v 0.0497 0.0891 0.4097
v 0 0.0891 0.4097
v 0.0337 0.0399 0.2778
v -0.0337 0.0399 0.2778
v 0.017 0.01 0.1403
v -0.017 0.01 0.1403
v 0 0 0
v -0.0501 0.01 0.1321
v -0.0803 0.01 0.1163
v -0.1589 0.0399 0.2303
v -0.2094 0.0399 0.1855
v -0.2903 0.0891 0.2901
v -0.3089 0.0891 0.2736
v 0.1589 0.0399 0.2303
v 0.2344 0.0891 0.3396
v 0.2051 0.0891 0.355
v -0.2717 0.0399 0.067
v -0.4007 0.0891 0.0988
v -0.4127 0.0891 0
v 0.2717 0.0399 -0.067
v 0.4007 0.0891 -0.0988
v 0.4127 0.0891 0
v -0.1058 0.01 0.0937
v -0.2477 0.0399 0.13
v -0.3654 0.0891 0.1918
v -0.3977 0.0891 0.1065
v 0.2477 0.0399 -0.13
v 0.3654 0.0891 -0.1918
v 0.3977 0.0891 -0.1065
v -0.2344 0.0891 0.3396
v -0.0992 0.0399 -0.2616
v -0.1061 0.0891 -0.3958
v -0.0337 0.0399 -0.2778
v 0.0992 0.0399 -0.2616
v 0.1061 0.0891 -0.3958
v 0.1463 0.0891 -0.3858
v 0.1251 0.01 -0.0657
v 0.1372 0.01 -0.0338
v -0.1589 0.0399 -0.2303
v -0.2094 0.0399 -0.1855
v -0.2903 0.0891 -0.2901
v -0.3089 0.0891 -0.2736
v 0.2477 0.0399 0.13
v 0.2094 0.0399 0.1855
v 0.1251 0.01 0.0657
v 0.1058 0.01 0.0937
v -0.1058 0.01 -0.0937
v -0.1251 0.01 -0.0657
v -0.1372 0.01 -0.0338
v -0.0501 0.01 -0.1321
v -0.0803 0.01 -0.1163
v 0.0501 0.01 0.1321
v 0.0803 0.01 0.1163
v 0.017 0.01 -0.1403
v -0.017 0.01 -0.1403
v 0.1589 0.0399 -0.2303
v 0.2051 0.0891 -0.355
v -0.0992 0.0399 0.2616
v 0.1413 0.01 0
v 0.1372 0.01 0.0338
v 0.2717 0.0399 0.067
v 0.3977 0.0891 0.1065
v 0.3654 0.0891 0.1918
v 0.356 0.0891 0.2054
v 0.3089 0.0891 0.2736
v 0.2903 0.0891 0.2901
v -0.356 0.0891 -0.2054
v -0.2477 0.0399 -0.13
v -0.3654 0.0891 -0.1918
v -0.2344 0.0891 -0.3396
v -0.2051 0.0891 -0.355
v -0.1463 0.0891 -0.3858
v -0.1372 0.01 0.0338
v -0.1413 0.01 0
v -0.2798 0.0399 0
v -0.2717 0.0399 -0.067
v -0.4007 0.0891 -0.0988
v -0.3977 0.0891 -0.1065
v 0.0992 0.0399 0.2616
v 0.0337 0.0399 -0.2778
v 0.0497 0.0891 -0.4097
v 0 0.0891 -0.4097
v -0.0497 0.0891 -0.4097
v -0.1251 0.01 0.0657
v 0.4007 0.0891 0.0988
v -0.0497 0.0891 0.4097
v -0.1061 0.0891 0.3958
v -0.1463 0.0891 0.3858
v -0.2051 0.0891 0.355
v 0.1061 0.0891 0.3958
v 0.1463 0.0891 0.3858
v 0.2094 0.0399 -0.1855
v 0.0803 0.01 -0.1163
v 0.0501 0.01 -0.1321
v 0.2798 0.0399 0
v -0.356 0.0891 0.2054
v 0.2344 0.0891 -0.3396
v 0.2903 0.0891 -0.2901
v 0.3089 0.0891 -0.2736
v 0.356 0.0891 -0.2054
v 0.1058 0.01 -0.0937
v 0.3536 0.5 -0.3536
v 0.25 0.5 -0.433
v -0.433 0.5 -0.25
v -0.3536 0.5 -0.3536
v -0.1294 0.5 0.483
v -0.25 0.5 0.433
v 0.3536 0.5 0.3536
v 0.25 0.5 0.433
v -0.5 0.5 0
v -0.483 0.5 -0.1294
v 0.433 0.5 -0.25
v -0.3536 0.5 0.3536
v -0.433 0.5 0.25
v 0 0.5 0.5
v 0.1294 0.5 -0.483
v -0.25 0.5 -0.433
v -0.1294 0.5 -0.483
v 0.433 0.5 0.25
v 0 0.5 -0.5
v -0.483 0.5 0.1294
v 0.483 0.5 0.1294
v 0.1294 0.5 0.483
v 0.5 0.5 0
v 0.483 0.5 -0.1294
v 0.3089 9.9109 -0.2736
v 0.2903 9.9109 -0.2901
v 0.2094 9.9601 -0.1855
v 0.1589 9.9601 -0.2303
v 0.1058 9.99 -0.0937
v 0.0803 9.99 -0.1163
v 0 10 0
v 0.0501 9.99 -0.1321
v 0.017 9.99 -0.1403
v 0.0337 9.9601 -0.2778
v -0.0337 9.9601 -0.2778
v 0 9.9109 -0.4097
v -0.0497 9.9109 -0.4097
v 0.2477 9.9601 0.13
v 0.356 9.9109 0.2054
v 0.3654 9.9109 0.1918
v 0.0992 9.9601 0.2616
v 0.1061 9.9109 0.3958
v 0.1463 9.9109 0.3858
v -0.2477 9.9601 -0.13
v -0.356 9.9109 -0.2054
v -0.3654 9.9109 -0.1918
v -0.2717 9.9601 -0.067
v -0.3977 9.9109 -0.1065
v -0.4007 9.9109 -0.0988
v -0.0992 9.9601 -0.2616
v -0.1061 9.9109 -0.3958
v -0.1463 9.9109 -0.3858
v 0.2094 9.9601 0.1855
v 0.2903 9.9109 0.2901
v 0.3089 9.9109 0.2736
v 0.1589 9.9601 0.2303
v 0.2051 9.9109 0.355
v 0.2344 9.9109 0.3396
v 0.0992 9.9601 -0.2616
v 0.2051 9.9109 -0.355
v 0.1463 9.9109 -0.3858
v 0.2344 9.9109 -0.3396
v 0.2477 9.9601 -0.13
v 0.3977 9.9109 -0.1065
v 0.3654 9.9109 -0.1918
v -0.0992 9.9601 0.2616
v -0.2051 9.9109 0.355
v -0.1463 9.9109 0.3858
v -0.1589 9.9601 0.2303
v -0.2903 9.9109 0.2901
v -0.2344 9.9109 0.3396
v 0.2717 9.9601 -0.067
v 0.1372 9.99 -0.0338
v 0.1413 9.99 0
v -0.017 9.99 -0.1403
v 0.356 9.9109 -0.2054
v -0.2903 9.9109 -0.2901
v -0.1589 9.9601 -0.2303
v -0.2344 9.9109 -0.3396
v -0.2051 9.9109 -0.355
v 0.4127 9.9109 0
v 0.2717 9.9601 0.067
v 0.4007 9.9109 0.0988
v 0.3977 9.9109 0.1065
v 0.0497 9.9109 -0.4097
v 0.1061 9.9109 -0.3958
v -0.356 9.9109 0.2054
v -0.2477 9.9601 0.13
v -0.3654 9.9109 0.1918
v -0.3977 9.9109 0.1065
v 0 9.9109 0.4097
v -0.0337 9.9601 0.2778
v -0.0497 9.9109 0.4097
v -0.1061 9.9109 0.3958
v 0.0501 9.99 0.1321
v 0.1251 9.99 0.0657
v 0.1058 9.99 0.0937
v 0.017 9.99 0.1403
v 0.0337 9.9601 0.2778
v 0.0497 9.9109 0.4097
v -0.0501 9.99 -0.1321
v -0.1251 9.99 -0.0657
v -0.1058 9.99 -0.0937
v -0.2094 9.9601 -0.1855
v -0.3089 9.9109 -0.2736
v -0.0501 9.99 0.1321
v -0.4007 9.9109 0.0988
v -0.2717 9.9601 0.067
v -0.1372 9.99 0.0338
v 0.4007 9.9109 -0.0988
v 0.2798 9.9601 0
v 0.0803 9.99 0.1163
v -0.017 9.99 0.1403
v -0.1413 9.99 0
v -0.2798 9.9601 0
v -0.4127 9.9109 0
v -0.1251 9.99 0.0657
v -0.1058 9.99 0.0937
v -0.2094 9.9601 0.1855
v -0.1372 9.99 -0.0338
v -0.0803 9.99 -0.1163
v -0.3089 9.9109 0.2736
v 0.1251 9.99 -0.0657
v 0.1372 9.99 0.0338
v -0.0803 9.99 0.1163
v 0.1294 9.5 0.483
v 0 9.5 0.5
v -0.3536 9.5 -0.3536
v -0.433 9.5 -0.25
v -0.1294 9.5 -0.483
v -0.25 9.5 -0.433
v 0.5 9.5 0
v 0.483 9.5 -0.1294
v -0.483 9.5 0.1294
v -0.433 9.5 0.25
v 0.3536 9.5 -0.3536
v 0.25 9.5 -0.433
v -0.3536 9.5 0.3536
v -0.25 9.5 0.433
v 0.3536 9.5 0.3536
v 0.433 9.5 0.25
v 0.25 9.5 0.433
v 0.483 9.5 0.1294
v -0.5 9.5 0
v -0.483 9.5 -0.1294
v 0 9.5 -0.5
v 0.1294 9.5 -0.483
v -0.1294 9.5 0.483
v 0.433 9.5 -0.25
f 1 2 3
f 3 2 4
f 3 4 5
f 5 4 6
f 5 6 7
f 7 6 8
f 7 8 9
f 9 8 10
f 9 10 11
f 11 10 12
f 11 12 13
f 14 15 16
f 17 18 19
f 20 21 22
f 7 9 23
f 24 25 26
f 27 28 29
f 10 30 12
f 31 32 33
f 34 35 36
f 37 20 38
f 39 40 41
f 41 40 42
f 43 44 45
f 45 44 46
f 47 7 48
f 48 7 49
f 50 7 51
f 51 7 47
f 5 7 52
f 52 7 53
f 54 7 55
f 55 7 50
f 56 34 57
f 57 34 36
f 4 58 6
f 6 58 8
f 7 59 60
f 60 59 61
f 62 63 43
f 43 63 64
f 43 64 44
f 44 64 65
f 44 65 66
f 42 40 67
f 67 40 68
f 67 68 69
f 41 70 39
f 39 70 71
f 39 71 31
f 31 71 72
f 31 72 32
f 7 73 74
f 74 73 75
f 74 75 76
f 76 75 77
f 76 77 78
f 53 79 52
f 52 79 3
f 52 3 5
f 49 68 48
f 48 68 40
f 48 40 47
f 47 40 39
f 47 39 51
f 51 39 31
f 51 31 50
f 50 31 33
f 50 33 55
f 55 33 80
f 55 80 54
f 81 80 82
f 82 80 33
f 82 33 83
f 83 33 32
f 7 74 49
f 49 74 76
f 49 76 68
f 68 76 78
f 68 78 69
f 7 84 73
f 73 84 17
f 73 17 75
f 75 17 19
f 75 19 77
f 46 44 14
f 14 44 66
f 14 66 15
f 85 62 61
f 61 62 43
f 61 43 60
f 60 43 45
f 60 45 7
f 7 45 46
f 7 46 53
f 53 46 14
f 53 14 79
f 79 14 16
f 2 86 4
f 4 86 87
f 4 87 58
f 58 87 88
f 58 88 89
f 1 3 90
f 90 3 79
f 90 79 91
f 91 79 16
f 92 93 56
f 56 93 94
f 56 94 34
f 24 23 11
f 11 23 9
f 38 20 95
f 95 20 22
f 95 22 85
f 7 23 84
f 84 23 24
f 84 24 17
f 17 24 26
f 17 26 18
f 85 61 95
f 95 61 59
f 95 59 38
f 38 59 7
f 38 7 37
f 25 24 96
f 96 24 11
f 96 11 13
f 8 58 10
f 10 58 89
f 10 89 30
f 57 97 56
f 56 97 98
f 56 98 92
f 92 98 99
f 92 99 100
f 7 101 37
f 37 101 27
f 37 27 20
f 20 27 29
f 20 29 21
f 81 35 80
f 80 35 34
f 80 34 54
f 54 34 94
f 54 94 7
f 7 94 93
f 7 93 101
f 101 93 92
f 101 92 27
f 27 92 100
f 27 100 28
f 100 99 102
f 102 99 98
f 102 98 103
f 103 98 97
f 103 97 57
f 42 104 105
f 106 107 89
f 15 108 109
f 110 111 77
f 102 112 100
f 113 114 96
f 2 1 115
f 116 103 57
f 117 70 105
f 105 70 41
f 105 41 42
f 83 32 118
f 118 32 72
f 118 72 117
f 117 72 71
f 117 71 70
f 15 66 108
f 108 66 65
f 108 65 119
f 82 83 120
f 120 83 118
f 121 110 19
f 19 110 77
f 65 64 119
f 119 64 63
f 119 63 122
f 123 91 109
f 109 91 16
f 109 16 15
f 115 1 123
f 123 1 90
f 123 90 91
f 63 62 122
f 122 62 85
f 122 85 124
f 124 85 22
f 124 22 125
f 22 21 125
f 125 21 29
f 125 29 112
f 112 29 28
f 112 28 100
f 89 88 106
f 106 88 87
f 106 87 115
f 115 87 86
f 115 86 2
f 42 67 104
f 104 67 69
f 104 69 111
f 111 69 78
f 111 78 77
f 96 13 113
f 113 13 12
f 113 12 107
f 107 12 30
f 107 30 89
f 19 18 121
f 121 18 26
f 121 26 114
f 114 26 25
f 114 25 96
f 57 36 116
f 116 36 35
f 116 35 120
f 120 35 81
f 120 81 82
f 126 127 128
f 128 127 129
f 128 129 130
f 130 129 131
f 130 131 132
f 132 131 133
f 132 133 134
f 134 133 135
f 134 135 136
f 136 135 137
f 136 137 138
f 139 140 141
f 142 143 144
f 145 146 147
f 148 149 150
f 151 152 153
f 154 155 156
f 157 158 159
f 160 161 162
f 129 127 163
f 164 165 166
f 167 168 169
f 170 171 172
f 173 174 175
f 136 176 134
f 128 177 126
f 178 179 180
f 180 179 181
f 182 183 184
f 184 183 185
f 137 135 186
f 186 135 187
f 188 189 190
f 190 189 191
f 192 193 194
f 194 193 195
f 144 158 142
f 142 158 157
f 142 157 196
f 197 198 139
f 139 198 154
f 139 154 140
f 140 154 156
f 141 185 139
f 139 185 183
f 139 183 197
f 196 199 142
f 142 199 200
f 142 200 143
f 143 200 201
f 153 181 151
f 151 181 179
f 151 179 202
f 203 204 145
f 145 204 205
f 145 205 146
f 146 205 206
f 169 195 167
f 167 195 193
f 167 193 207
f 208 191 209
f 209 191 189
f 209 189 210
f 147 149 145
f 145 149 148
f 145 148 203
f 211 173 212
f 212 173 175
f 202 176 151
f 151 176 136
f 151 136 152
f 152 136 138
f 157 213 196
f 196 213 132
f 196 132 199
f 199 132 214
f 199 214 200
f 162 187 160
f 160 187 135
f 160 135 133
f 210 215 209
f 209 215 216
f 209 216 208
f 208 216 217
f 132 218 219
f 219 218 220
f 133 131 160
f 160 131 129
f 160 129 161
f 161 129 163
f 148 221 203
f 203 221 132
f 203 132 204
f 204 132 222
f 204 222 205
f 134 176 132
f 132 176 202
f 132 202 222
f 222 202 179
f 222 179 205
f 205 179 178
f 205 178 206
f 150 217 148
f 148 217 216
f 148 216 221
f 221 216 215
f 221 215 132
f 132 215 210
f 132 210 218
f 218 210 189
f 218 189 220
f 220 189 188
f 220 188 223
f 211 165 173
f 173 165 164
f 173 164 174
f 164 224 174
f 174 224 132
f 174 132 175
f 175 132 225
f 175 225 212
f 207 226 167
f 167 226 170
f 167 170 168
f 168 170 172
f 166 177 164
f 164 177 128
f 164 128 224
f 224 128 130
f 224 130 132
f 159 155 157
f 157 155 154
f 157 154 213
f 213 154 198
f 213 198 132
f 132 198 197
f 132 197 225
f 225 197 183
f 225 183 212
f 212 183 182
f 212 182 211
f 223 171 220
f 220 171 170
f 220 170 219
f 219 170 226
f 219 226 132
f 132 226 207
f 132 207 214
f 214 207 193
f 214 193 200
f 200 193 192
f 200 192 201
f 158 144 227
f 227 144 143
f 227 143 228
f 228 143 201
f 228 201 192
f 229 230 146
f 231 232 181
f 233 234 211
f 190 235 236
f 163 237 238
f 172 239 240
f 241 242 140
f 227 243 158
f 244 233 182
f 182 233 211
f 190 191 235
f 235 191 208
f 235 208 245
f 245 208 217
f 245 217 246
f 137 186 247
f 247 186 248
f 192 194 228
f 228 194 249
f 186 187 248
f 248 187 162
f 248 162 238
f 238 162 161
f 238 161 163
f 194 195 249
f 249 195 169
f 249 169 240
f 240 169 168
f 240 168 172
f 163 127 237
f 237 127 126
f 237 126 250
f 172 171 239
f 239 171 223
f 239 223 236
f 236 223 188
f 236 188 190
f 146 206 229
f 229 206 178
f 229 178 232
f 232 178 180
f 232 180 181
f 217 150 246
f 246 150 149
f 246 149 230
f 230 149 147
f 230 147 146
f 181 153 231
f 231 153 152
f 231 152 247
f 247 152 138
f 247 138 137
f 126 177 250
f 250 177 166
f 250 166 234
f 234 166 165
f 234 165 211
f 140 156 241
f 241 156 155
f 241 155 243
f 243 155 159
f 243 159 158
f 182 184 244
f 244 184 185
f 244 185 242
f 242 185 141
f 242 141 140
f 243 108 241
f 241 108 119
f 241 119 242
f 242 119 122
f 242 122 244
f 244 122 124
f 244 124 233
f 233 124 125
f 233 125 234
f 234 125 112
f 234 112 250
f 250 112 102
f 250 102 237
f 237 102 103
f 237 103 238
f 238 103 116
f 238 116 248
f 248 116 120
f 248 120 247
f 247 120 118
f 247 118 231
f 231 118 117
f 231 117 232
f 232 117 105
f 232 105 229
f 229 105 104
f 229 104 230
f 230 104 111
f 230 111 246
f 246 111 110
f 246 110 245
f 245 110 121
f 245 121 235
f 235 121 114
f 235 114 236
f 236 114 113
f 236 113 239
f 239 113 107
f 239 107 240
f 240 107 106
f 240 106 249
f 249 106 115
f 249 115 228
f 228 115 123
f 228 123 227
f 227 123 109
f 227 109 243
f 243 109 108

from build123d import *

# Parameters (mm, degrees)
SKETCH1_R           = 0.5
BOSS_EXTRUDE1_DEPTH = 10


with BuildPart() as part:
    # Sketch1 → Boss-Extrude1 (new body)
    with BuildSketch(Plane(origin=(0, 0, 0), x_dir=(1, 0, 0), z_dir=(0, 1, 0))):
        Circle(SKETCH1_R)
    extrude(amount=BOSS_EXTRUDE1_DEPTH)

    # Sketch2 → Cut-Revolve2 (revolve, cut)
    with BuildSketch(Plane.XY):
        with BuildLine():
            Line((0.5, 9.866025404), (0.5, 10.1))
            Line((0.5, 10.1), (0, 10.1))
            Line((0, 10.1), (0, 10))
            ThreePointArc((0, 10), (0.258819045, 9.965925826), (0.5, 9.866025404))
        make_face()
        with BuildLine():
            Line((0.5, -0.1), (0, -0.1))
            Line((0, -0.1), (0, 0))
            ThreePointArc((0, 0), (0.258819045, 0.034074174), (0.5, 0.133974596))
            Line((0.5, 0.133974596), (0.5, -0.1))
        make_face()
    revolve(axis=Axis((0, 0, 0), (0, 1, 0)), mode=Mode.SUBTRACT)

    # Sketch3 → Cut-Revolve3 (revolve, cut)
    with BuildSketch(Plane.XY):
        with BuildLine():
            Line((-0.5, 9.5), (-0.41266406, 9.910883293))
            ThreePointArc((-0.41266406, 9.910883293), (-0.456882894, 9.889526852), (-0.5, 9.866025404))
            Line((-0.5, 9.866025404), (-0.5, 9.5))
        make_face()
        with BuildLine():
            Line((-0.5, 0.133974596), (-0.5, 0.5))
            Line((-0.5, 0.5), (-0.41266406, 0.089116707))
            ThreePointArc((-0.41266406, 0.089116707), (-0.456882894, 0.110473148), (-0.5, 0.133974596))
        make_face()
    revolve(axis=Axis((0, 0, 0), (0, 1, 0)), mode=Mode.SUBTRACT)


solid = part.part
